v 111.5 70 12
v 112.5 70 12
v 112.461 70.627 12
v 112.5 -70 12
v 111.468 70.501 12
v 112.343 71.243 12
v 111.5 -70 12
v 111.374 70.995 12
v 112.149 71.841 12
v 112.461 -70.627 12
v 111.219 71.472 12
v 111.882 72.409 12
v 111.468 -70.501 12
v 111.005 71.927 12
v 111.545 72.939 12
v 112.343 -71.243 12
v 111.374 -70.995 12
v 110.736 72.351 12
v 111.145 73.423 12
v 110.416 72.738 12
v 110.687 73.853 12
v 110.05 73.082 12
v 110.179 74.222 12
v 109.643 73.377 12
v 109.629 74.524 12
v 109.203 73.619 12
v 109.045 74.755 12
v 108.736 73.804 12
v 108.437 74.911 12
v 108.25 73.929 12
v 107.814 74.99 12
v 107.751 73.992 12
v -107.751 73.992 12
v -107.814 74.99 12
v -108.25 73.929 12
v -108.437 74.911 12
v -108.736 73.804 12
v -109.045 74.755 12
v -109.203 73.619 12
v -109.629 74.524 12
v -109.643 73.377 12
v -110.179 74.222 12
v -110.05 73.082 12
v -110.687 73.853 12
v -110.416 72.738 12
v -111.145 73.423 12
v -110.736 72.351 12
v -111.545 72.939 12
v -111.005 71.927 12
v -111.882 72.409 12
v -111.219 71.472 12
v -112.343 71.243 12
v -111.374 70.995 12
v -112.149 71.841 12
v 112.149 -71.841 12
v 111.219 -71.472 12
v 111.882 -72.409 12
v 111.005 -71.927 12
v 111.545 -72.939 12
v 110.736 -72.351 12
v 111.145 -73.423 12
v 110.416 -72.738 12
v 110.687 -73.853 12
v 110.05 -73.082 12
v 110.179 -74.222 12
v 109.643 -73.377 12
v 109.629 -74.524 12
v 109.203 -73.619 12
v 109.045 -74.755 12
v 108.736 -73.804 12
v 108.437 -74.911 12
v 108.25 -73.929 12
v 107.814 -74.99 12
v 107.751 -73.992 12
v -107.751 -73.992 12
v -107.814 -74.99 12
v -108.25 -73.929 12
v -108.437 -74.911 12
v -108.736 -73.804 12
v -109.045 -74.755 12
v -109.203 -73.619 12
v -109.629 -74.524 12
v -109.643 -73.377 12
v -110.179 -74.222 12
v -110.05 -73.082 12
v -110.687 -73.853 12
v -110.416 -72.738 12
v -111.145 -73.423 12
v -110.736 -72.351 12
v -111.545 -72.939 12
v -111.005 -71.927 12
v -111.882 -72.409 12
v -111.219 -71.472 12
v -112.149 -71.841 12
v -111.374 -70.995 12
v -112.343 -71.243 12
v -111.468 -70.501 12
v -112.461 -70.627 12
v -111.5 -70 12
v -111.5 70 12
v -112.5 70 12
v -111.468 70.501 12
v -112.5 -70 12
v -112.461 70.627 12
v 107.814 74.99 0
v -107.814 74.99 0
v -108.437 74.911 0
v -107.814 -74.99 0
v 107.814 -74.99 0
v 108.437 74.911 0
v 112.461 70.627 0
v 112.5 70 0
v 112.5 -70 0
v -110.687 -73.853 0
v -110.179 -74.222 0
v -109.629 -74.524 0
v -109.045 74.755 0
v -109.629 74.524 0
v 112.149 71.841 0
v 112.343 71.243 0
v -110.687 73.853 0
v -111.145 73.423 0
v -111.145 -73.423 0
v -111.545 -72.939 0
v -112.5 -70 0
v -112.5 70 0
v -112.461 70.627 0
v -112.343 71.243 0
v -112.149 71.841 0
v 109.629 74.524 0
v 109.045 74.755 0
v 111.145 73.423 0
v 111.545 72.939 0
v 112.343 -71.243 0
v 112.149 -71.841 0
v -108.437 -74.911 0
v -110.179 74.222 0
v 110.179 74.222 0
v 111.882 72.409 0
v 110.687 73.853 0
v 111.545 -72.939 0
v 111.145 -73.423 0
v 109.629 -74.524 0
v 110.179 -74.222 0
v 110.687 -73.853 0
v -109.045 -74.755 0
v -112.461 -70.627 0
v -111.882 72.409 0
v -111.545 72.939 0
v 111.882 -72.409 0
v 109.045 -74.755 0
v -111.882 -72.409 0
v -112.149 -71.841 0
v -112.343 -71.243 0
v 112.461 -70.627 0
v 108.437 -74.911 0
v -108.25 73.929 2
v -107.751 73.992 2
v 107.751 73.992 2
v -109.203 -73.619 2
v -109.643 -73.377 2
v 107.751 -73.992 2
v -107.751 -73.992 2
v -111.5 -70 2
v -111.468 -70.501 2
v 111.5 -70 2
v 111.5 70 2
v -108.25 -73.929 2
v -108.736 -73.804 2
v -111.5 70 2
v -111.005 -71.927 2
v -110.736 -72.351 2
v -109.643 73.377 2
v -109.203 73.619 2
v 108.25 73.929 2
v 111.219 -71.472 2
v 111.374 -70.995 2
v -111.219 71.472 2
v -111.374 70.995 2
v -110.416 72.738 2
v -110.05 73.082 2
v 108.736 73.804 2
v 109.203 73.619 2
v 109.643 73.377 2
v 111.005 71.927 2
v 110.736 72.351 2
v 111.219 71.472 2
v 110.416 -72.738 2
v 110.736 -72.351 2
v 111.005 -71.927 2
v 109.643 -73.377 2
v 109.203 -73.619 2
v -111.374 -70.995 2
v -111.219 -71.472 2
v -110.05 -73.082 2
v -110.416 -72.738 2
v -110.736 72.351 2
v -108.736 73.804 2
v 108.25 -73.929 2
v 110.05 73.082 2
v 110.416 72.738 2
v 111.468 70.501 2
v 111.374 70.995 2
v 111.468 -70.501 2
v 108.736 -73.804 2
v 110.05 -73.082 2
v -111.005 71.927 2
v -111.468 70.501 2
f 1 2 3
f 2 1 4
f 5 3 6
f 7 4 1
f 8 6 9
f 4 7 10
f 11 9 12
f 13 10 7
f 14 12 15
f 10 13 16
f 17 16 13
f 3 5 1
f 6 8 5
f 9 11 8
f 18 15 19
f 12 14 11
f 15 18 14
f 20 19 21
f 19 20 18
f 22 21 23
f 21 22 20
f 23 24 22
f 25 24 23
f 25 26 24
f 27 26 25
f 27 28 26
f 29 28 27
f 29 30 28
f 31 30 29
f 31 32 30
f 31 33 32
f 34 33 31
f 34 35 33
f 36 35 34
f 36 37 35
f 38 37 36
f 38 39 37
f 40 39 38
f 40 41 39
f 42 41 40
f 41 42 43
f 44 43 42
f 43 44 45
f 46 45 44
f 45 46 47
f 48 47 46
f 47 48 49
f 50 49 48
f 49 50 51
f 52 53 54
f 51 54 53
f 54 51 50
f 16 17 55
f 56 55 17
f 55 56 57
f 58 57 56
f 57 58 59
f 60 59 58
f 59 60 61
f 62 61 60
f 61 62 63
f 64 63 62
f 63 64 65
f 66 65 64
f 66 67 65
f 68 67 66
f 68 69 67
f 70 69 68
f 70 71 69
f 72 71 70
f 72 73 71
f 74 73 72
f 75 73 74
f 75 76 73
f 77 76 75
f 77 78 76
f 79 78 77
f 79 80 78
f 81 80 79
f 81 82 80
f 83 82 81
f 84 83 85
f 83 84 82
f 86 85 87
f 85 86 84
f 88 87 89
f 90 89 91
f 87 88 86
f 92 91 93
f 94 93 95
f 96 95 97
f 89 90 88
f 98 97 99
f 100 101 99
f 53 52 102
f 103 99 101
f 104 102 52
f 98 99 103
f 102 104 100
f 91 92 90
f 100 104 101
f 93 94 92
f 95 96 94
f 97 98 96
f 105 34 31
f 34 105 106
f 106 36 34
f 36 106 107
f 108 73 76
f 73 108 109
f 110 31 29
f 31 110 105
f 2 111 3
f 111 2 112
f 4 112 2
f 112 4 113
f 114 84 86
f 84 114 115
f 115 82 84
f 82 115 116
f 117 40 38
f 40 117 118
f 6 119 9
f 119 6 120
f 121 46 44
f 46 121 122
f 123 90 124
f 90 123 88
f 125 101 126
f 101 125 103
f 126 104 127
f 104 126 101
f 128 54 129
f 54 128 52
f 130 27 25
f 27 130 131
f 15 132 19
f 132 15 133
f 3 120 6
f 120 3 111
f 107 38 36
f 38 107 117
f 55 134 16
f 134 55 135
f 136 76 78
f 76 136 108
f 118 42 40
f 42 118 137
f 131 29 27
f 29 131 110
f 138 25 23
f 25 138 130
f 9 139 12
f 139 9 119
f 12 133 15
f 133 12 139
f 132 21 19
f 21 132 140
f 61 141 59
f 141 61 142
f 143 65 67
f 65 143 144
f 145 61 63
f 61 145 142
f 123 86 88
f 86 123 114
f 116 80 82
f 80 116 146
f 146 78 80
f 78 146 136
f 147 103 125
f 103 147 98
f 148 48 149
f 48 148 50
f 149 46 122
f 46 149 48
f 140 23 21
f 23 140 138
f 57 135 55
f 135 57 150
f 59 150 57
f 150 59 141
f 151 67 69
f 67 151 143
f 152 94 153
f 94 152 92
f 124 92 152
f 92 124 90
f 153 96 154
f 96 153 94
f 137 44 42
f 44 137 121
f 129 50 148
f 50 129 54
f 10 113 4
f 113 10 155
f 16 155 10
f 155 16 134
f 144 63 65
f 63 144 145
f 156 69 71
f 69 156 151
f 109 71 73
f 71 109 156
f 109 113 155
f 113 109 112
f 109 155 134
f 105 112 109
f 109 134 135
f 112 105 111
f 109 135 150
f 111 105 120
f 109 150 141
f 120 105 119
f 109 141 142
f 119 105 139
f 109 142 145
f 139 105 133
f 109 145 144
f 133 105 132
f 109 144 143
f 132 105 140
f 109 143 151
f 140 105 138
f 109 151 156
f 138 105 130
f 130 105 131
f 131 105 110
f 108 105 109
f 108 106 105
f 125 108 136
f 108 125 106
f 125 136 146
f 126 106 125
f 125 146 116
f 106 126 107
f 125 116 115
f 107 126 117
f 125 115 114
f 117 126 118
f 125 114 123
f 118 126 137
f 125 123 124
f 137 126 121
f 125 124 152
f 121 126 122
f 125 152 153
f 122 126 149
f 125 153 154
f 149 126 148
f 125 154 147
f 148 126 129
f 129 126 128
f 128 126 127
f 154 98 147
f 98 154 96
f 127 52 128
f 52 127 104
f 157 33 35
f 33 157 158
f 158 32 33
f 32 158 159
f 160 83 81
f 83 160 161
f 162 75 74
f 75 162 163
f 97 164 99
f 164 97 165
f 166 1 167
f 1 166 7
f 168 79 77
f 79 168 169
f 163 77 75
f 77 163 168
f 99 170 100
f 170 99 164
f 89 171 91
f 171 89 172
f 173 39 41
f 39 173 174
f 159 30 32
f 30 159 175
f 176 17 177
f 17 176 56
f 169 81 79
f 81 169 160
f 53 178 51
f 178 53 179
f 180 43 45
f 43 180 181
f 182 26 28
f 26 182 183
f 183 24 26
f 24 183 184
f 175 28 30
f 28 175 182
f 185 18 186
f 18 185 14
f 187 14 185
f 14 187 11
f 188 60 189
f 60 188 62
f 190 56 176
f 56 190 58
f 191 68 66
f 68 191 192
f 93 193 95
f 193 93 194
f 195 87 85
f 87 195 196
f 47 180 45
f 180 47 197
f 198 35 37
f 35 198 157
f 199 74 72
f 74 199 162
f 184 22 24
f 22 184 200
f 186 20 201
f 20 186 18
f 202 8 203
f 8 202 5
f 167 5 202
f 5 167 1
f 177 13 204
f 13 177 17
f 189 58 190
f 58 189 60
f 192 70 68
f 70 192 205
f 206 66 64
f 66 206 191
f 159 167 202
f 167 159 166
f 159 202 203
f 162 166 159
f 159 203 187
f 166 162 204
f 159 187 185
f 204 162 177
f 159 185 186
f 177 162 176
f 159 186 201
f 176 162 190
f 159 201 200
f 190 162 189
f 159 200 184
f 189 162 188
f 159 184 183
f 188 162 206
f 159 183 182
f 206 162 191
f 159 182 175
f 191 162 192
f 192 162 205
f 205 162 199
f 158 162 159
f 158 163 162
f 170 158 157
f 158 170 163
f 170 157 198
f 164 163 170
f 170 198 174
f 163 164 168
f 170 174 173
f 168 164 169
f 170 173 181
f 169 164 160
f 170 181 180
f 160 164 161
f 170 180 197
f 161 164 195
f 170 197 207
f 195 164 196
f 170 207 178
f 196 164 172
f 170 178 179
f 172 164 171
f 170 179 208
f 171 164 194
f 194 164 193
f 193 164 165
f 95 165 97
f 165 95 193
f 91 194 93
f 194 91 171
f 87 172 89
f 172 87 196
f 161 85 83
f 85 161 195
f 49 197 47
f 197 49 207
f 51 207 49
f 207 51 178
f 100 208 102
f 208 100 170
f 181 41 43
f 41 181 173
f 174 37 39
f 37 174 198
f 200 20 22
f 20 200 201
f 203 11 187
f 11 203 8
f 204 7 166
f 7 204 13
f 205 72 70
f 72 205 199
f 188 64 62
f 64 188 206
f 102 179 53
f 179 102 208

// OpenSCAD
$fn = 50;


difference() {
	union() {
		hull() {
			translate(v = [-107.5000000000, 70.0000000000, 0]) {
				cylinder(h = 12, r = 5);
			}
			translate(v = [107.5000000000, 70.0000000000, 0]) {
				cylinder(h = 12, r = 5);
			}
			translate(v = [-107.5000000000, -70.0000000000, 0]) {
				cylinder(h = 12, r = 5);
			}
			translate(v = [107.5000000000, -70.0000000000, 0]) {
				cylinder(h = 12, r = 5);
			}
		}
	}
	union() {
		translate(v = [0, 0, 2]) {
			hull() {
				translate(v = [-107.5000000000, 70.0000000000, 0]) {
					cylinder(h = 10, r = 4);
				}
				translate(v = [107.5000000000, 70.0000000000, 0]) {
					cylinder(h = 10, r = 4);
				}
				translate(v = [-107.5000000000, -70.0000000000, 0]) {
					cylinder(h = 10, r = 4);
				}
				translate(v = [107.5000000000, -70.0000000000, 0]) {
					cylinder(h = 10, r = 4);
				}
			}
		}
	}
}
